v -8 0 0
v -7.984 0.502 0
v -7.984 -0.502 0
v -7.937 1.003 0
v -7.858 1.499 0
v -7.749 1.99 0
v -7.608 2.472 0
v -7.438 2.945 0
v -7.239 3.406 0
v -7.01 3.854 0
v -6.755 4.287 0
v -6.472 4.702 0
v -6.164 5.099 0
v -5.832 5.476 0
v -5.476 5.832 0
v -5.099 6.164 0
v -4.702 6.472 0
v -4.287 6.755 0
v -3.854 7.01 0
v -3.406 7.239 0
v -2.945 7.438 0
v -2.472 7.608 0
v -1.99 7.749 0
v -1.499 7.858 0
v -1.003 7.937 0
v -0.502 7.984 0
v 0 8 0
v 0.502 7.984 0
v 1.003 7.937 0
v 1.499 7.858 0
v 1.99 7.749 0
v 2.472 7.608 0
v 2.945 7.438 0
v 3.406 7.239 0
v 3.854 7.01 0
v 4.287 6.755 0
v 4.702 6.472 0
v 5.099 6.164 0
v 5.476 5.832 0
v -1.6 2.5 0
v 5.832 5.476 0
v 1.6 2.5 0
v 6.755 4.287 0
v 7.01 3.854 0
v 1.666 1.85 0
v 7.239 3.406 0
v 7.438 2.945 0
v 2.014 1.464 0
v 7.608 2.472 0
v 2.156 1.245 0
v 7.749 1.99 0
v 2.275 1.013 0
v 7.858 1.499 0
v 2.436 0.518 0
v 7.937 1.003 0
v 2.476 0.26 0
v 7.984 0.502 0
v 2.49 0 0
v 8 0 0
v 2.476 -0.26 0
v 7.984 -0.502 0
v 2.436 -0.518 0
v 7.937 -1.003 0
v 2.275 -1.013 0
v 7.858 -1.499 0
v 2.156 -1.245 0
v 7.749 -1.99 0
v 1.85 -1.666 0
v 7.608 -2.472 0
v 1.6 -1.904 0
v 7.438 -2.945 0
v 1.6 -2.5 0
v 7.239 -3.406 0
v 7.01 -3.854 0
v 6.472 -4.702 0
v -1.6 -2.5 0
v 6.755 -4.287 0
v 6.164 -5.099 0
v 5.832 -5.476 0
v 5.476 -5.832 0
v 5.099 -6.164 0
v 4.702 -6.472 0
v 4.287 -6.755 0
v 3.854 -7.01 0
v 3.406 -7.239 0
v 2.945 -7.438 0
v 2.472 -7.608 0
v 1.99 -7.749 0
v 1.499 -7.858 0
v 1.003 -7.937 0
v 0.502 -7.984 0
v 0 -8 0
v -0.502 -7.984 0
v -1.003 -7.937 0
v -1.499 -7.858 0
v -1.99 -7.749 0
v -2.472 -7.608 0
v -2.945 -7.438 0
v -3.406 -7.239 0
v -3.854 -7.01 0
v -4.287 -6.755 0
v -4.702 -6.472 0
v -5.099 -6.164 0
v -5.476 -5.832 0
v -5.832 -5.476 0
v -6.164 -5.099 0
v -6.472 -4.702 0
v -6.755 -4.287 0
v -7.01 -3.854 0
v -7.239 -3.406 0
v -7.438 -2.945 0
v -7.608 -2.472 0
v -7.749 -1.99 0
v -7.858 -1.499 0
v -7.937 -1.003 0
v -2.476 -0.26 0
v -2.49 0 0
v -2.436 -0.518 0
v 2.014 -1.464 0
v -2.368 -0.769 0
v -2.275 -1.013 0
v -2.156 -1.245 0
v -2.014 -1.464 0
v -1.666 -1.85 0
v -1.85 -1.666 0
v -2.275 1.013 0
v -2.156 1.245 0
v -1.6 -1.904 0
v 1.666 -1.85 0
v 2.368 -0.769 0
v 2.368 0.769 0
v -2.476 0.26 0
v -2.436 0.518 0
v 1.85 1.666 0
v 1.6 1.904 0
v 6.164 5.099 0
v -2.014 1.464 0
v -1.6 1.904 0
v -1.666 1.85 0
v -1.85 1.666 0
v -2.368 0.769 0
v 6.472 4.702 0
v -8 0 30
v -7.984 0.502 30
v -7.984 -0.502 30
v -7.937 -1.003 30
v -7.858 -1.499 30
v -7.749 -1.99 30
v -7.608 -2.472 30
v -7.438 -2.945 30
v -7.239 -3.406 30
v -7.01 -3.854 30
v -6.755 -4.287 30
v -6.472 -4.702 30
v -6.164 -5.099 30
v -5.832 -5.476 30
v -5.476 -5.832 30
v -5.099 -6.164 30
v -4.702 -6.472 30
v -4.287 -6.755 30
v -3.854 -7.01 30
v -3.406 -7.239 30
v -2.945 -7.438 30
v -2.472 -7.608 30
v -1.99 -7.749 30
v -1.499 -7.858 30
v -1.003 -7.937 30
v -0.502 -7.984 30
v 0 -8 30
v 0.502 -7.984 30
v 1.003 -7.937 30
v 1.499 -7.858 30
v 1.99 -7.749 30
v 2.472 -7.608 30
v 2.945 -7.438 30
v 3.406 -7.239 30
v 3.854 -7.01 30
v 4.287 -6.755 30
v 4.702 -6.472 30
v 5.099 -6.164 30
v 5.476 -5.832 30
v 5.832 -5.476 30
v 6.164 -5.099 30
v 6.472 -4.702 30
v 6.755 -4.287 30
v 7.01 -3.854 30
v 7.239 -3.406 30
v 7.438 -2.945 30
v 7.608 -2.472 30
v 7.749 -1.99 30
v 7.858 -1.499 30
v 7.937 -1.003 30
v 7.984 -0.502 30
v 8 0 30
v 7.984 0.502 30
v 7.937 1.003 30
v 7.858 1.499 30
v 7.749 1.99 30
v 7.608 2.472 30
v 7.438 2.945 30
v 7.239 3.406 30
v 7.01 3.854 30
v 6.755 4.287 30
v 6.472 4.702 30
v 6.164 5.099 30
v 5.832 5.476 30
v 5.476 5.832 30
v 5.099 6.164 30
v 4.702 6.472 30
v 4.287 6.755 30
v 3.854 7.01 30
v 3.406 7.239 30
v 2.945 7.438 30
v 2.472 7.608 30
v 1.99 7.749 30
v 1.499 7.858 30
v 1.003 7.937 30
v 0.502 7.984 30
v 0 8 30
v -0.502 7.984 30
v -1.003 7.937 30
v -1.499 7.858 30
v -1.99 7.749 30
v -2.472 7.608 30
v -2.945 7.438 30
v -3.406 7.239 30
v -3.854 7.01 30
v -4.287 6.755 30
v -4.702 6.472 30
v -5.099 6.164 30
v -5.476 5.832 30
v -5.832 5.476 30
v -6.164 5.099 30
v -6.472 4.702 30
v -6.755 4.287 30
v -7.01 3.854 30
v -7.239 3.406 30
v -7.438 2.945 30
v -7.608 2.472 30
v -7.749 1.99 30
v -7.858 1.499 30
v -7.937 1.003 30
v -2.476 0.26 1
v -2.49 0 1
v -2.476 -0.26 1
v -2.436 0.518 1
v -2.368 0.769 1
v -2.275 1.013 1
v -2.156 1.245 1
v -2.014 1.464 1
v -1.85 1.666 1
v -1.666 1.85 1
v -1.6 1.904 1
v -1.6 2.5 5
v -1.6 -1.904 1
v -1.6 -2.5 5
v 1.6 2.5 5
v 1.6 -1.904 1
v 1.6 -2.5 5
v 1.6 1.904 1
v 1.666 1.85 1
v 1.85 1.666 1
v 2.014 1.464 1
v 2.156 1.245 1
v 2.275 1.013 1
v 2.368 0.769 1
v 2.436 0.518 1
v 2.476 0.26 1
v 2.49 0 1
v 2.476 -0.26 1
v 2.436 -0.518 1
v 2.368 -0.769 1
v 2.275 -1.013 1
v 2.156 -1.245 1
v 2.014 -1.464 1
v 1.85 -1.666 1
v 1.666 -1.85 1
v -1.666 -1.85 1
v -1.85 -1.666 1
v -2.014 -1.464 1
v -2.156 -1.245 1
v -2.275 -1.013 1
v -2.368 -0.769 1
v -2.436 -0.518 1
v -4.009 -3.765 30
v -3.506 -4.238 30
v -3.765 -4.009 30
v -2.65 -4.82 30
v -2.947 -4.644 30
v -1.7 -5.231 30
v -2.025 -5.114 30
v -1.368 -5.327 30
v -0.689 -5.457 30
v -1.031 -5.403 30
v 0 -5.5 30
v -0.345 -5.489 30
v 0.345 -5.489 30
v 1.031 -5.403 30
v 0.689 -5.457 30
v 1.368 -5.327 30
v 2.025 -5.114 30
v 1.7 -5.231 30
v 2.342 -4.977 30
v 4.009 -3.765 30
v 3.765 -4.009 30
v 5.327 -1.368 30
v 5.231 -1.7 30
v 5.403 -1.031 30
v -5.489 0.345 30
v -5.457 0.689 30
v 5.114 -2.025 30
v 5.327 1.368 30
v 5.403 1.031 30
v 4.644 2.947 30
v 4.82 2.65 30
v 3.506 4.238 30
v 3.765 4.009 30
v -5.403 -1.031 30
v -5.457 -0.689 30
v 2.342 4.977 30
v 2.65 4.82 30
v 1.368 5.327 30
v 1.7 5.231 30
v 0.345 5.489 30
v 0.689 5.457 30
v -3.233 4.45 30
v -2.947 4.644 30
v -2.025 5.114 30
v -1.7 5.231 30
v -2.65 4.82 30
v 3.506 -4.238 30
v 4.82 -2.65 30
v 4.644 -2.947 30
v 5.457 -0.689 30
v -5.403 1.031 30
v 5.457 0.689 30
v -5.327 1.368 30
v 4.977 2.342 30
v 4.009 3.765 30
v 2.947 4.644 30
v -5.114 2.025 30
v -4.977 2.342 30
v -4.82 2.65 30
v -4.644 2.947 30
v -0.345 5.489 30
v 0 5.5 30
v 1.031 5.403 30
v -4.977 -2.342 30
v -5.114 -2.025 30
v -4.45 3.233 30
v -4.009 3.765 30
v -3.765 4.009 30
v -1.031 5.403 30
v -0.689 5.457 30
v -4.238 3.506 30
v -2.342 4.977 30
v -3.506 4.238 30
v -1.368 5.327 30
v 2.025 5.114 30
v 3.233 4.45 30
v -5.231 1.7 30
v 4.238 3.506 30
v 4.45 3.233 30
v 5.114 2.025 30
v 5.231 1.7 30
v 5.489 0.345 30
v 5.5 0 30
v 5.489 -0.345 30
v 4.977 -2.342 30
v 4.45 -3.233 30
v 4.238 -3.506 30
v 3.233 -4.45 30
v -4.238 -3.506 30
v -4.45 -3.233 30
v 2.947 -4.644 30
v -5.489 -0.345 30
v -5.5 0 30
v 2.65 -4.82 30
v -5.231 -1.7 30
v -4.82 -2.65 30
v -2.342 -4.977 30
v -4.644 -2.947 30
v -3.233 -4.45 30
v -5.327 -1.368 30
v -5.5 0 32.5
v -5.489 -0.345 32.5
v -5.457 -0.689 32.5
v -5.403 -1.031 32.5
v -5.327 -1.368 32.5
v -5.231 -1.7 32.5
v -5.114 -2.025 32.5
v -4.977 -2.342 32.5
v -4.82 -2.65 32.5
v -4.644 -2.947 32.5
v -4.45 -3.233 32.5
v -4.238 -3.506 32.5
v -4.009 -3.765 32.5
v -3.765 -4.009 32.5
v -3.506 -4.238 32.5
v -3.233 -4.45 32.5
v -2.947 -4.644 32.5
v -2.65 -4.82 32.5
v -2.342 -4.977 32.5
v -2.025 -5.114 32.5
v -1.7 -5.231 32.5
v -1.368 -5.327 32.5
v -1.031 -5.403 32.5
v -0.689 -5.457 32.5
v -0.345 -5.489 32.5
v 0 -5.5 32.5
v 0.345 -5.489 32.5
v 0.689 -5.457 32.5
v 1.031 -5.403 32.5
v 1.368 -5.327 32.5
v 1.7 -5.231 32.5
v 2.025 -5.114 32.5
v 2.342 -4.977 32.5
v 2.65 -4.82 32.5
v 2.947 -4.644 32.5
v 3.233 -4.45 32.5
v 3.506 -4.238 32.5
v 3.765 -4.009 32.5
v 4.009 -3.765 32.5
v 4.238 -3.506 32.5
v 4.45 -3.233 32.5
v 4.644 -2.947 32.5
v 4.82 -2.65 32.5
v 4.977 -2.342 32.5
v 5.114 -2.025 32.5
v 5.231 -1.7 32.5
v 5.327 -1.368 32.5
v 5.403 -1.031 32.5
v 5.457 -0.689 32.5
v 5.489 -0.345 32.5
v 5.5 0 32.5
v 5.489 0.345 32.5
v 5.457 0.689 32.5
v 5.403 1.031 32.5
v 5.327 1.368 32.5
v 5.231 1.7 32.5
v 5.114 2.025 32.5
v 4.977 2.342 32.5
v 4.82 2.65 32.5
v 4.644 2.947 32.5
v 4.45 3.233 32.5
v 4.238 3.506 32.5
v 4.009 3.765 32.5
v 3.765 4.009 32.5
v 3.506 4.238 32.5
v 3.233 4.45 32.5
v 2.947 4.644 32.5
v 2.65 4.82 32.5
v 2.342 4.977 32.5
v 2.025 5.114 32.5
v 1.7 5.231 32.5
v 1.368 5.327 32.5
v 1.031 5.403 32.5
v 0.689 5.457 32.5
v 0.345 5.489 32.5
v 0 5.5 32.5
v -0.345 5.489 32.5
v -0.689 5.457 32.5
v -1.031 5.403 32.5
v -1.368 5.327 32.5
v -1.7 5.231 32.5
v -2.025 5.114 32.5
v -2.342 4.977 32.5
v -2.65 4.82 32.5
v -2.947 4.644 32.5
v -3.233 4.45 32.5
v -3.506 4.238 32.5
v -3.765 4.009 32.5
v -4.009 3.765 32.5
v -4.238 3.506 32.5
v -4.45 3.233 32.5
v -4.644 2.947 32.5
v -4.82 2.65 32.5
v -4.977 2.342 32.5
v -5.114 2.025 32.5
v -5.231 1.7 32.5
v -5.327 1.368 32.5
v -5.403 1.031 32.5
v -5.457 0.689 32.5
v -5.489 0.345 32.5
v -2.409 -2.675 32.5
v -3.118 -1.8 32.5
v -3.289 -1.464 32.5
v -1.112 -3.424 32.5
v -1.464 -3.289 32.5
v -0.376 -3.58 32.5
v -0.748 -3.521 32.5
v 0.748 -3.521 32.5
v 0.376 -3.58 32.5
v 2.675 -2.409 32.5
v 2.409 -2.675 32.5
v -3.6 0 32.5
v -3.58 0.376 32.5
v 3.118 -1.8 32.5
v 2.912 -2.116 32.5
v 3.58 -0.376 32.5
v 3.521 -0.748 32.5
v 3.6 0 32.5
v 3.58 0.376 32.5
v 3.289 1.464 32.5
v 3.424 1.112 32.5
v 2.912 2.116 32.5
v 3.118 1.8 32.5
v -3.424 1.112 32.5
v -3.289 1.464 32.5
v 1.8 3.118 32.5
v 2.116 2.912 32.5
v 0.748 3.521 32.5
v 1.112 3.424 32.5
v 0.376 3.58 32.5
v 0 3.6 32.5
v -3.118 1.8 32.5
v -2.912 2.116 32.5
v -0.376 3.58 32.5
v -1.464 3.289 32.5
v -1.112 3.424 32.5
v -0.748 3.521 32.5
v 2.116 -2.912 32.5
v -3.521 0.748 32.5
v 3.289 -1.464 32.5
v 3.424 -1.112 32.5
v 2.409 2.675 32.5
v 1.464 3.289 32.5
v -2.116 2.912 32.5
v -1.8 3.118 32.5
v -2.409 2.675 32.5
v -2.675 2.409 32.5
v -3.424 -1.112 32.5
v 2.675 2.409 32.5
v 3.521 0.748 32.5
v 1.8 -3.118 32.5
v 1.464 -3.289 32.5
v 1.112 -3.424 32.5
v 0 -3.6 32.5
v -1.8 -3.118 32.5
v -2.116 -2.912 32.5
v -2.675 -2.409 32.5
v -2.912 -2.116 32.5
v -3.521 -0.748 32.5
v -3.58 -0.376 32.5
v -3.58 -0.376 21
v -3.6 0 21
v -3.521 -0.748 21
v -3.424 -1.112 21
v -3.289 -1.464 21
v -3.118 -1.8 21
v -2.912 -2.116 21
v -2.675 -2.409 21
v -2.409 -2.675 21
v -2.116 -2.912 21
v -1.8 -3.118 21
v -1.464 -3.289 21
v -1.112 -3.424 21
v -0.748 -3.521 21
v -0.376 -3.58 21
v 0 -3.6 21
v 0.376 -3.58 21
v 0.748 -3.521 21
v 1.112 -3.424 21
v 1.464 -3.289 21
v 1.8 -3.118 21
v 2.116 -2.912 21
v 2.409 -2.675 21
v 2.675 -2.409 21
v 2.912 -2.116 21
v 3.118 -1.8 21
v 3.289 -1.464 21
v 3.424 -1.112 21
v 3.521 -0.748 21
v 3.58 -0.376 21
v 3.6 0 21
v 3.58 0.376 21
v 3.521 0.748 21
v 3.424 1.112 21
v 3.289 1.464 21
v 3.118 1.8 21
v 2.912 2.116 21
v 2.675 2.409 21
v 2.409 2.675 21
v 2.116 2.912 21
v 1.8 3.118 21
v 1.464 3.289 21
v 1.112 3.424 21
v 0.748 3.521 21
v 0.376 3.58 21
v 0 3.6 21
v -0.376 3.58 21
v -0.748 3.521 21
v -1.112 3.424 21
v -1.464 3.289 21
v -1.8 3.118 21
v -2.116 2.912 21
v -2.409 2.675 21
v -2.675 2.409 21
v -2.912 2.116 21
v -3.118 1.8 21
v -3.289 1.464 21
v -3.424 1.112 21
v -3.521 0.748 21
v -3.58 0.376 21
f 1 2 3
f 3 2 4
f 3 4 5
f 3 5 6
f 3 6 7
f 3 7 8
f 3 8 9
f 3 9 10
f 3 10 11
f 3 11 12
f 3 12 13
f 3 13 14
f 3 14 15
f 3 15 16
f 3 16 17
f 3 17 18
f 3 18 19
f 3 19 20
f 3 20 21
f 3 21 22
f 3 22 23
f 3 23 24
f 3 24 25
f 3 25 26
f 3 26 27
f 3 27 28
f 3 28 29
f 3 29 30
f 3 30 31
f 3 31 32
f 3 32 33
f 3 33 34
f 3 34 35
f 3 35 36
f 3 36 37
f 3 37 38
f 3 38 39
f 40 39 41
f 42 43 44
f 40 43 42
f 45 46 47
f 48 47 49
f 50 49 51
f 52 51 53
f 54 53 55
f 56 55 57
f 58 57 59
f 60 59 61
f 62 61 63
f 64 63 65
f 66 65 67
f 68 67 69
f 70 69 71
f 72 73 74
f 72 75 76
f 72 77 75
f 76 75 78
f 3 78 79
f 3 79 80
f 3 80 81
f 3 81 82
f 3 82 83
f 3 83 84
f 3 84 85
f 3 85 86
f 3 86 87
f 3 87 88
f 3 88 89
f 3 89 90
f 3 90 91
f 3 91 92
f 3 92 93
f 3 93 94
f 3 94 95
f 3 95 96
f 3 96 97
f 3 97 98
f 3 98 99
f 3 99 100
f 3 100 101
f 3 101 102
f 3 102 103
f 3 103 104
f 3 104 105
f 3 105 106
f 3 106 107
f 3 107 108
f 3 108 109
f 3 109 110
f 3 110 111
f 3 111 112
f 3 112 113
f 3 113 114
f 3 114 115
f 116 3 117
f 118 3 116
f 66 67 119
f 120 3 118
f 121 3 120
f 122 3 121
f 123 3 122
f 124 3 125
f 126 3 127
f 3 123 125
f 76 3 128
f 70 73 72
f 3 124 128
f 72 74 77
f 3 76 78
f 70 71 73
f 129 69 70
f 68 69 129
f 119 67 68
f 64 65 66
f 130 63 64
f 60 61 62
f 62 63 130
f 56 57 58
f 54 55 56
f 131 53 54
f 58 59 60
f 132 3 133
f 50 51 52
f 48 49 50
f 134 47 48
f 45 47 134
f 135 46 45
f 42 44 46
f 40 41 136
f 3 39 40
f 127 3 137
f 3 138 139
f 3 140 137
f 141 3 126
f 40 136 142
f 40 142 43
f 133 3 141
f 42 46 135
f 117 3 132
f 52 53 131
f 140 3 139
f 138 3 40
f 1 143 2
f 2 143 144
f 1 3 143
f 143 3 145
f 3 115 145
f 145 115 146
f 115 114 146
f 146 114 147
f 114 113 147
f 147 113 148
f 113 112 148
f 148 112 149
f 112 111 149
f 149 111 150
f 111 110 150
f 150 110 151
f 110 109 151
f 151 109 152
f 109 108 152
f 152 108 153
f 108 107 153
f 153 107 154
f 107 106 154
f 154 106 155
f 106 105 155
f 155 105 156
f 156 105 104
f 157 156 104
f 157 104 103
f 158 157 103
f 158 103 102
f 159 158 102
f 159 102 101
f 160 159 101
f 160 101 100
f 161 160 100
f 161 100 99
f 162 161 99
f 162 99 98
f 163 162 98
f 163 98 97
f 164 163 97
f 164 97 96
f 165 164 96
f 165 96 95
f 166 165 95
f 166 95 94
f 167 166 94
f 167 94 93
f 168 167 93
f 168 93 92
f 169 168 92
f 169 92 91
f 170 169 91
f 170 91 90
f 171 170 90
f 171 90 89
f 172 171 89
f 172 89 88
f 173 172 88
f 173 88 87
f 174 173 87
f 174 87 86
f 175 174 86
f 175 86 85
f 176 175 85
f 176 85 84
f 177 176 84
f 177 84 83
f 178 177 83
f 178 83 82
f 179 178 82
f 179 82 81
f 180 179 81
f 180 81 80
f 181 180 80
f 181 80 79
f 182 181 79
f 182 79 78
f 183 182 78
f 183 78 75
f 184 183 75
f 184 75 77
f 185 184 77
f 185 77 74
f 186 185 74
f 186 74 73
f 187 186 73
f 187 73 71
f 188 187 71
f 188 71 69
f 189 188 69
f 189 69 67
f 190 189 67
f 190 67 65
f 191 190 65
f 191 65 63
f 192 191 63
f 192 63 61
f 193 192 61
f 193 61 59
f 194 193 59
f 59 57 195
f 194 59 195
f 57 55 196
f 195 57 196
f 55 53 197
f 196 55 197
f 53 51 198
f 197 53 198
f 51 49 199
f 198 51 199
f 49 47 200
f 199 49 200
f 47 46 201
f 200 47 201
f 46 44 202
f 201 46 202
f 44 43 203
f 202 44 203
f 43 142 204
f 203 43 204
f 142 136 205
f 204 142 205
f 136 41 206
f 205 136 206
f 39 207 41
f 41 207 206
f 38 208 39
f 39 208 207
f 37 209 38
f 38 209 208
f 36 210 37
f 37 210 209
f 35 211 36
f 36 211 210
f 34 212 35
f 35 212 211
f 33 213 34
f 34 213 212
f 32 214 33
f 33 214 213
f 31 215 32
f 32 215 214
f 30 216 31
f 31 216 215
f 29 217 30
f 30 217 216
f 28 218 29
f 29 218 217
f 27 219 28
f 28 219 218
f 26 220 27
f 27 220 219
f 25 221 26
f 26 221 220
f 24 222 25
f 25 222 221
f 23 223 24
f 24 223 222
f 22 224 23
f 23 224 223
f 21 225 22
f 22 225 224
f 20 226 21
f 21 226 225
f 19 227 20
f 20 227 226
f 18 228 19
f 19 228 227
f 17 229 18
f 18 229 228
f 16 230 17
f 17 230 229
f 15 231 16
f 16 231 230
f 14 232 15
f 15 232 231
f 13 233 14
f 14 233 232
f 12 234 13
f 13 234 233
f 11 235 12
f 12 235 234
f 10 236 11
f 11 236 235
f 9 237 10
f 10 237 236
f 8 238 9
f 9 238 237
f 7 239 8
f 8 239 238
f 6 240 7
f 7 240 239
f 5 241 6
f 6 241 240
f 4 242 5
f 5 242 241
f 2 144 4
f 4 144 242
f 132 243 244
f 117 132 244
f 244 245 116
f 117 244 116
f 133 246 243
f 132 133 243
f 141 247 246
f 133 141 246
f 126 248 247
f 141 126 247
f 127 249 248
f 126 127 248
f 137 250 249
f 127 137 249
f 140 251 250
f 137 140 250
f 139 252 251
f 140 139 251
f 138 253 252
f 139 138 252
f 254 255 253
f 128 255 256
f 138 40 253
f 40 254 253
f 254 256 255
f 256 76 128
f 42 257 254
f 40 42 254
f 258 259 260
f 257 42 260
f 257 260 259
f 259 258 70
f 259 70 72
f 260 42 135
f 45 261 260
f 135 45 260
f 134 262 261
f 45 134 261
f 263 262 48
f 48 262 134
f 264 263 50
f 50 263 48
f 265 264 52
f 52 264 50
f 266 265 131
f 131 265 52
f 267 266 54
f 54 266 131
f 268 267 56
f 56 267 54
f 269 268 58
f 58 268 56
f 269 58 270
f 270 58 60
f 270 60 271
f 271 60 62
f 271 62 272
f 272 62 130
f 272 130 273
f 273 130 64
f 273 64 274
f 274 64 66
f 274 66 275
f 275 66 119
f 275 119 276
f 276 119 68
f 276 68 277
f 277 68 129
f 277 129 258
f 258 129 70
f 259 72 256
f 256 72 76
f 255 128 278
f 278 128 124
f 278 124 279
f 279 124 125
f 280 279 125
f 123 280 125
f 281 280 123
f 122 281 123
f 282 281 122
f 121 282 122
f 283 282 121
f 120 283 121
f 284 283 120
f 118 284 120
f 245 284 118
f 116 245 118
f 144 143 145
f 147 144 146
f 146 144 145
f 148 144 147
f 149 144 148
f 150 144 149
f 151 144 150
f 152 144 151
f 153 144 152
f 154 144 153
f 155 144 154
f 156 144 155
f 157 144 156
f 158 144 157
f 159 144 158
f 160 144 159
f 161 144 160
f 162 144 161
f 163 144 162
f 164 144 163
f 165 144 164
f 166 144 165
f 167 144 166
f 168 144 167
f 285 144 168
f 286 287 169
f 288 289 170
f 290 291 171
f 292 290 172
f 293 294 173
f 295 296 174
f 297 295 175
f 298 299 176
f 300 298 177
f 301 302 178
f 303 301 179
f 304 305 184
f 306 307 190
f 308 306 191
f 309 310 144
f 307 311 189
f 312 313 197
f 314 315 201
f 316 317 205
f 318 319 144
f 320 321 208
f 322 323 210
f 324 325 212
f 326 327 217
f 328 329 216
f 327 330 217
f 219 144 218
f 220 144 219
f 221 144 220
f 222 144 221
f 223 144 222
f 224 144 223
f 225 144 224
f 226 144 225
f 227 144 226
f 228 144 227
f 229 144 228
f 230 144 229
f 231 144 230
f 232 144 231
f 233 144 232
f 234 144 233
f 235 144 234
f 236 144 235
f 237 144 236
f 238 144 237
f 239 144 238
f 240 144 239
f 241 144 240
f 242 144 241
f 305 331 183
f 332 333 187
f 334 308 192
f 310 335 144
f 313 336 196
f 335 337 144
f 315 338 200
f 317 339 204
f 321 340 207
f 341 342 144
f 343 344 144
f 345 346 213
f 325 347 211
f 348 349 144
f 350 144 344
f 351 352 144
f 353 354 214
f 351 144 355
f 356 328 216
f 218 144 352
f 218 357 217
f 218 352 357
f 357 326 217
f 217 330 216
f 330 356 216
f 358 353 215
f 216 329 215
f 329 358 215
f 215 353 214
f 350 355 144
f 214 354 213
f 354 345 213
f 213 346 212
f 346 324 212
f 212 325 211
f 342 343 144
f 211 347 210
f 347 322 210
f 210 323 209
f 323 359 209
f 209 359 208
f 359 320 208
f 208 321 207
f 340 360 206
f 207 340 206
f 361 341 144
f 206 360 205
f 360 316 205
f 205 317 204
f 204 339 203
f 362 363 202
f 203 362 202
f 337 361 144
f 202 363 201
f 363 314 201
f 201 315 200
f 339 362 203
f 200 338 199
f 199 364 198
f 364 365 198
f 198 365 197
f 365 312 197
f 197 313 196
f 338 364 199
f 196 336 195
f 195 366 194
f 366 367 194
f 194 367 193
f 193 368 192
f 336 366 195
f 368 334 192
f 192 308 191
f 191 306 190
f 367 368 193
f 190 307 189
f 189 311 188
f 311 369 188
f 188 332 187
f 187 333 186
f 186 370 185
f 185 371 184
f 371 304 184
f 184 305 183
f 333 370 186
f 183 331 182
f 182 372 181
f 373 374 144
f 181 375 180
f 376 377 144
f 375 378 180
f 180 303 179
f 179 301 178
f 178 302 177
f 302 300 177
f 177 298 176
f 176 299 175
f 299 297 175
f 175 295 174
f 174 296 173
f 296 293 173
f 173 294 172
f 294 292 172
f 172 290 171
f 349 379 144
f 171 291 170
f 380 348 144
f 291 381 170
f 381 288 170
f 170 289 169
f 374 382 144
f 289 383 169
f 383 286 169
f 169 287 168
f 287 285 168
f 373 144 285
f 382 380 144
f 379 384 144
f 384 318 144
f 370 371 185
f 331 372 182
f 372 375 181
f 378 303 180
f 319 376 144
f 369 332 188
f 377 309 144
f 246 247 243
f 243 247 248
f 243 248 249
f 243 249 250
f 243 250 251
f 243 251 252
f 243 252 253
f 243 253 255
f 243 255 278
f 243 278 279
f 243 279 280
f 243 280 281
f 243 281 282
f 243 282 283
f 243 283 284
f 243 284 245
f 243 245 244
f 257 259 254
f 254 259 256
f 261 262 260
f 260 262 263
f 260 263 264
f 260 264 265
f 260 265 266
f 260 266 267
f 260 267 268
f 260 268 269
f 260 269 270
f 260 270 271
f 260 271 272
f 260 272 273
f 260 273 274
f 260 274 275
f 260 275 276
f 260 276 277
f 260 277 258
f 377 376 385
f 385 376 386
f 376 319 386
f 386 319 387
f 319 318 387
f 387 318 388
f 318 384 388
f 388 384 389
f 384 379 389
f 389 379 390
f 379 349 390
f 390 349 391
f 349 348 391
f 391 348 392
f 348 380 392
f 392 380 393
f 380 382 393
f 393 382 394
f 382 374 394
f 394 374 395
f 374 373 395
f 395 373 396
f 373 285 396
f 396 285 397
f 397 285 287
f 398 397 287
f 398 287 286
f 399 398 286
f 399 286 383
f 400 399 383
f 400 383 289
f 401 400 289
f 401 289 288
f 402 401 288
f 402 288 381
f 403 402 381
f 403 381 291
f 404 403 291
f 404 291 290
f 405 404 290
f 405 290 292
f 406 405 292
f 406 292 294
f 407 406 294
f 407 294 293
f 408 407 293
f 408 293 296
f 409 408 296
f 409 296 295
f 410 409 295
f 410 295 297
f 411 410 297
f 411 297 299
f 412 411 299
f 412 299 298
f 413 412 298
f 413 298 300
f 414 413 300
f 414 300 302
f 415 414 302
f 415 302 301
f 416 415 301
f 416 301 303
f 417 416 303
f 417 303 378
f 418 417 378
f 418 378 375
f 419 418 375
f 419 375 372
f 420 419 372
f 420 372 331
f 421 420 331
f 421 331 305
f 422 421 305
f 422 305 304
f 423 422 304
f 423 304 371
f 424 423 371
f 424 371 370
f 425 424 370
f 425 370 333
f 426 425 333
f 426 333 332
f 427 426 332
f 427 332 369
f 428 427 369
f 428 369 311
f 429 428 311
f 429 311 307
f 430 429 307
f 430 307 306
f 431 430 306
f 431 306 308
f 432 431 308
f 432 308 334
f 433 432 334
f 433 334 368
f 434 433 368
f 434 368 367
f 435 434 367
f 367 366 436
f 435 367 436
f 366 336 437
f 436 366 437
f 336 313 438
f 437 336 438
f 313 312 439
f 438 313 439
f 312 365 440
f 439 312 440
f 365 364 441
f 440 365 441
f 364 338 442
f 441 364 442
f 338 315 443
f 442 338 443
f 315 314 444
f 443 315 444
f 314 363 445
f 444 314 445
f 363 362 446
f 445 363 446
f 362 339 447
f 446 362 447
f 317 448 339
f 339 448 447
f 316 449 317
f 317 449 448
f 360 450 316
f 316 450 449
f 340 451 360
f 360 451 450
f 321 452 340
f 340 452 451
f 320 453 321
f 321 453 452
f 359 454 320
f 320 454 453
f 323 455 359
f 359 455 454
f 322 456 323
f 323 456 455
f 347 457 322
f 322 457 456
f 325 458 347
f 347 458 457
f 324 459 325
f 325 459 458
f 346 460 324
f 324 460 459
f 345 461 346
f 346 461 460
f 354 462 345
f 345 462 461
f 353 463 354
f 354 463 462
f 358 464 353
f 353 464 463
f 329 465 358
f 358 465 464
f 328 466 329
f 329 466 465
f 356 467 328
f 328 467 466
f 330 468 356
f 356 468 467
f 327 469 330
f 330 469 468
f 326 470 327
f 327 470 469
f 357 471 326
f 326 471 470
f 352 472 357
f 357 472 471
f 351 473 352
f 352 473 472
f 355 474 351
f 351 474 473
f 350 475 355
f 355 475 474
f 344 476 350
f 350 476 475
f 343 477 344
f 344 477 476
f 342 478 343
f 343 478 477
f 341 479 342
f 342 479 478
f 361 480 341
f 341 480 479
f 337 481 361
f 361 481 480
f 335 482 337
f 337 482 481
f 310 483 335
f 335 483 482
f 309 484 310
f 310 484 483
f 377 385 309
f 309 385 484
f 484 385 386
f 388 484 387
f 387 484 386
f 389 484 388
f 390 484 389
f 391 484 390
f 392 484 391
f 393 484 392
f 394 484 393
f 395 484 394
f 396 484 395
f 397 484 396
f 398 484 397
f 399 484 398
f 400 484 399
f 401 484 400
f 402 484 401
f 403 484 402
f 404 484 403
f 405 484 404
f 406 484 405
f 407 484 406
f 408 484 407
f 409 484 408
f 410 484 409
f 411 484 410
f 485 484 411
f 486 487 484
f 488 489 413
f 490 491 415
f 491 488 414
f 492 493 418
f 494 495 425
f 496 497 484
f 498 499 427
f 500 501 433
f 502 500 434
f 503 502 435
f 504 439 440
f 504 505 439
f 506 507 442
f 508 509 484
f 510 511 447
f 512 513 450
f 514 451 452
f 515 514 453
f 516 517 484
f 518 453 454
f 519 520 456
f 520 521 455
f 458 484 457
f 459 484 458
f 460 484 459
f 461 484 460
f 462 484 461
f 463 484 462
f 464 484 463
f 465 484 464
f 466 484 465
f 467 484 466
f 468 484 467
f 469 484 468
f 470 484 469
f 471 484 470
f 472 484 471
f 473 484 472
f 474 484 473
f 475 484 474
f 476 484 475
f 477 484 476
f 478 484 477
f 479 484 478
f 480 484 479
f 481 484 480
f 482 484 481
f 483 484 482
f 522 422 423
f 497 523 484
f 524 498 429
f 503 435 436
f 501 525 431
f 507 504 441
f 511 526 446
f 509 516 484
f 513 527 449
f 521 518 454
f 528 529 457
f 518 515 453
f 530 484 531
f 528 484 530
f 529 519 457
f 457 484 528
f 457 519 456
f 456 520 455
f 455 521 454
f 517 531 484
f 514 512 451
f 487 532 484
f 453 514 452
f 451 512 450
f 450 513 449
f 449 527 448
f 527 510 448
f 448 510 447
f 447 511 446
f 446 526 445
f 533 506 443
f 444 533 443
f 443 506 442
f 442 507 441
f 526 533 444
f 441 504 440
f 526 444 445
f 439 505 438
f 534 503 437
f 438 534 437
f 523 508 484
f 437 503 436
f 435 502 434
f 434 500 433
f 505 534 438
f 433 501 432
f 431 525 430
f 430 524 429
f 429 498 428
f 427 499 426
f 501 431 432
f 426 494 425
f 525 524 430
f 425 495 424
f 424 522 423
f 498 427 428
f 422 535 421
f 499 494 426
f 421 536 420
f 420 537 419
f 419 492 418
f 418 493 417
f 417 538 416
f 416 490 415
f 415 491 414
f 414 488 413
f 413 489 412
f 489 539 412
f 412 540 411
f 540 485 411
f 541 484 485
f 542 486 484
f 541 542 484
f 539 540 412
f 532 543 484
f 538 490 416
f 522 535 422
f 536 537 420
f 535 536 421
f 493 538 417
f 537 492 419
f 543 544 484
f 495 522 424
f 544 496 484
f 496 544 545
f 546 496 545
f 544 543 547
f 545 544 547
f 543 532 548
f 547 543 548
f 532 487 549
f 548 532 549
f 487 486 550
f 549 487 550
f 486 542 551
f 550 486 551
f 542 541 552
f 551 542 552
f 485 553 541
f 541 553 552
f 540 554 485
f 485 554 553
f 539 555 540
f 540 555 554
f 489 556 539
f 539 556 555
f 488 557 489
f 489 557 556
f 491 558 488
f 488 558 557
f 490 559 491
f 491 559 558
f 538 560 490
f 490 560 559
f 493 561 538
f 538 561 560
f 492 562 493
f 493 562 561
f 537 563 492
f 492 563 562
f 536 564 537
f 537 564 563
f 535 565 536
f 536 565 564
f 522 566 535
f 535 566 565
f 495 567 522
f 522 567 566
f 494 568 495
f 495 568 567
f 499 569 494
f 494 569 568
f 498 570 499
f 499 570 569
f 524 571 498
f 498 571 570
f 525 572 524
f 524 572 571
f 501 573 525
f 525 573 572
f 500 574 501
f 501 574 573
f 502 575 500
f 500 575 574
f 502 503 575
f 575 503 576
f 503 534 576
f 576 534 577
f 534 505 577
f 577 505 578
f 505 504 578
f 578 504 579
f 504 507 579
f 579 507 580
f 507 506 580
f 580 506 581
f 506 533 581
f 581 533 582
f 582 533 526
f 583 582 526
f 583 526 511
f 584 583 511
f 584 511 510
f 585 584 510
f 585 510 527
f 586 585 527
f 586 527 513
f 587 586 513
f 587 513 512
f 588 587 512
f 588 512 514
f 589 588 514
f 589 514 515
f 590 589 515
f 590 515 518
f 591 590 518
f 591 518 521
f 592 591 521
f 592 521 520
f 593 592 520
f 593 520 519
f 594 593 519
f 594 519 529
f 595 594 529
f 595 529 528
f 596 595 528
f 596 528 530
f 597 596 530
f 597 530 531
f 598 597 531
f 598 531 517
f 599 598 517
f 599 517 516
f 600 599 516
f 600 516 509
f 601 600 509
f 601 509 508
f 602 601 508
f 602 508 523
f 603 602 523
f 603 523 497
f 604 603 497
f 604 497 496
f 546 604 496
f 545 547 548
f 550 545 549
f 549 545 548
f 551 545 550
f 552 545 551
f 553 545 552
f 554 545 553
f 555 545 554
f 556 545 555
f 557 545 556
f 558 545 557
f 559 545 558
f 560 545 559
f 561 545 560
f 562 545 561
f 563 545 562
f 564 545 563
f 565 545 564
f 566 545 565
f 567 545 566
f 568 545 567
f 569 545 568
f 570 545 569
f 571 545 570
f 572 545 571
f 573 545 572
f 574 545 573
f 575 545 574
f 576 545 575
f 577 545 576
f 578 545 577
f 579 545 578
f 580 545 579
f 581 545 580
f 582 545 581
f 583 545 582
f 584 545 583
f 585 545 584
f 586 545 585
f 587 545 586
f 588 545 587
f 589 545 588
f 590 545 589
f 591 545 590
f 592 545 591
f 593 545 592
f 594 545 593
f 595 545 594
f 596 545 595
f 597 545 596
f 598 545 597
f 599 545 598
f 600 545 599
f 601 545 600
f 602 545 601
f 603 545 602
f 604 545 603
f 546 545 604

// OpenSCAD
// file: inc/28BYJ-48-Stepper-Motor.scad
// 28BYJ-48 Stepper Motor Model

// Mark Benson

// 23/07/2013

// Creative Commons Non Commerical

// http://www.thingiverse.com/thing:122070

module stepper28BYJ()
{

difference()
{
        
        union()
        {
                //Body
                color("SILVER") cylinder(r=28/2, h=19, $fn=60);

                //Base of motor shaft
                color("SILVER") translate([0,8,19]) cylinder(r=9/2, h=1.5, $fn=40);

                //Motor shaft
                color("SILVER") translate([0,8,20.5]) 
                intersection()
                {
                cylinder(r=5/2, h=9, $fn=40);
                cube([3,6,9],center=true);
                }

                //Left mounting lug
                color("SILVER") translate([-35/2,0,18.5]) mountingLug();
                
                //Right mounting lug
                color("SILVER") translate([35/2,0,18.5]) rotate([0,0,180]) mountingLug();
        
                difference()
                {
                        //Cable entry housing
                        color("BLUE") translate([-14.6/2,-17,1.9]) cube([14.6,17,17]);

                        cylinder(r=27/2, h=29, $fn=60);
                }

        }

        union()
        {
                //Flat on motor shaft
                //translate([-5,0,22]) cube([10,7,25]);
        }
}

}//end of stepper28BYJ module wrapper

module mountingLug()
{
        difference()
        {
                hull()
                {
                        cylinder(r=7/2, h=0.5, $fn=40);
                        translate([0,-7/2,0]) cube([7,7,0.5]);
                }

                translate([0,0,-1]) cylinder(r=4.2/2, h=2, $fn=40);
        }
}

//Call stepper module - comment this out if you include this file in another model
//stepper28BYJ();
// main file
include <inc/28BYJ-48-Stepper-Motor.scad>;
difference(){
union(){
	cylinder(h = 30, r=8, $fn=100);
	translate([0,0,30]) cylinder(h = 2.5, r=5.5, $fn=100);
	//translate([0,0,-21]) stepper28BYJ();
}
union(){
	//cylinder(h = 30, r=8, $fn=60);
	translate([0,0,21]) cylinder(h = 12, r=3.6, $fn=60);
	//#translate([0,-8,-21]) stepper28BYJ();
	//cylinder(h = 5, r=2.49, $fn=60);
	cube(size = [3.2,5,10], center = true);
	translate([0,0,-1]) cylinder(h = 2, r=2.49, $fn=60);
}
}
